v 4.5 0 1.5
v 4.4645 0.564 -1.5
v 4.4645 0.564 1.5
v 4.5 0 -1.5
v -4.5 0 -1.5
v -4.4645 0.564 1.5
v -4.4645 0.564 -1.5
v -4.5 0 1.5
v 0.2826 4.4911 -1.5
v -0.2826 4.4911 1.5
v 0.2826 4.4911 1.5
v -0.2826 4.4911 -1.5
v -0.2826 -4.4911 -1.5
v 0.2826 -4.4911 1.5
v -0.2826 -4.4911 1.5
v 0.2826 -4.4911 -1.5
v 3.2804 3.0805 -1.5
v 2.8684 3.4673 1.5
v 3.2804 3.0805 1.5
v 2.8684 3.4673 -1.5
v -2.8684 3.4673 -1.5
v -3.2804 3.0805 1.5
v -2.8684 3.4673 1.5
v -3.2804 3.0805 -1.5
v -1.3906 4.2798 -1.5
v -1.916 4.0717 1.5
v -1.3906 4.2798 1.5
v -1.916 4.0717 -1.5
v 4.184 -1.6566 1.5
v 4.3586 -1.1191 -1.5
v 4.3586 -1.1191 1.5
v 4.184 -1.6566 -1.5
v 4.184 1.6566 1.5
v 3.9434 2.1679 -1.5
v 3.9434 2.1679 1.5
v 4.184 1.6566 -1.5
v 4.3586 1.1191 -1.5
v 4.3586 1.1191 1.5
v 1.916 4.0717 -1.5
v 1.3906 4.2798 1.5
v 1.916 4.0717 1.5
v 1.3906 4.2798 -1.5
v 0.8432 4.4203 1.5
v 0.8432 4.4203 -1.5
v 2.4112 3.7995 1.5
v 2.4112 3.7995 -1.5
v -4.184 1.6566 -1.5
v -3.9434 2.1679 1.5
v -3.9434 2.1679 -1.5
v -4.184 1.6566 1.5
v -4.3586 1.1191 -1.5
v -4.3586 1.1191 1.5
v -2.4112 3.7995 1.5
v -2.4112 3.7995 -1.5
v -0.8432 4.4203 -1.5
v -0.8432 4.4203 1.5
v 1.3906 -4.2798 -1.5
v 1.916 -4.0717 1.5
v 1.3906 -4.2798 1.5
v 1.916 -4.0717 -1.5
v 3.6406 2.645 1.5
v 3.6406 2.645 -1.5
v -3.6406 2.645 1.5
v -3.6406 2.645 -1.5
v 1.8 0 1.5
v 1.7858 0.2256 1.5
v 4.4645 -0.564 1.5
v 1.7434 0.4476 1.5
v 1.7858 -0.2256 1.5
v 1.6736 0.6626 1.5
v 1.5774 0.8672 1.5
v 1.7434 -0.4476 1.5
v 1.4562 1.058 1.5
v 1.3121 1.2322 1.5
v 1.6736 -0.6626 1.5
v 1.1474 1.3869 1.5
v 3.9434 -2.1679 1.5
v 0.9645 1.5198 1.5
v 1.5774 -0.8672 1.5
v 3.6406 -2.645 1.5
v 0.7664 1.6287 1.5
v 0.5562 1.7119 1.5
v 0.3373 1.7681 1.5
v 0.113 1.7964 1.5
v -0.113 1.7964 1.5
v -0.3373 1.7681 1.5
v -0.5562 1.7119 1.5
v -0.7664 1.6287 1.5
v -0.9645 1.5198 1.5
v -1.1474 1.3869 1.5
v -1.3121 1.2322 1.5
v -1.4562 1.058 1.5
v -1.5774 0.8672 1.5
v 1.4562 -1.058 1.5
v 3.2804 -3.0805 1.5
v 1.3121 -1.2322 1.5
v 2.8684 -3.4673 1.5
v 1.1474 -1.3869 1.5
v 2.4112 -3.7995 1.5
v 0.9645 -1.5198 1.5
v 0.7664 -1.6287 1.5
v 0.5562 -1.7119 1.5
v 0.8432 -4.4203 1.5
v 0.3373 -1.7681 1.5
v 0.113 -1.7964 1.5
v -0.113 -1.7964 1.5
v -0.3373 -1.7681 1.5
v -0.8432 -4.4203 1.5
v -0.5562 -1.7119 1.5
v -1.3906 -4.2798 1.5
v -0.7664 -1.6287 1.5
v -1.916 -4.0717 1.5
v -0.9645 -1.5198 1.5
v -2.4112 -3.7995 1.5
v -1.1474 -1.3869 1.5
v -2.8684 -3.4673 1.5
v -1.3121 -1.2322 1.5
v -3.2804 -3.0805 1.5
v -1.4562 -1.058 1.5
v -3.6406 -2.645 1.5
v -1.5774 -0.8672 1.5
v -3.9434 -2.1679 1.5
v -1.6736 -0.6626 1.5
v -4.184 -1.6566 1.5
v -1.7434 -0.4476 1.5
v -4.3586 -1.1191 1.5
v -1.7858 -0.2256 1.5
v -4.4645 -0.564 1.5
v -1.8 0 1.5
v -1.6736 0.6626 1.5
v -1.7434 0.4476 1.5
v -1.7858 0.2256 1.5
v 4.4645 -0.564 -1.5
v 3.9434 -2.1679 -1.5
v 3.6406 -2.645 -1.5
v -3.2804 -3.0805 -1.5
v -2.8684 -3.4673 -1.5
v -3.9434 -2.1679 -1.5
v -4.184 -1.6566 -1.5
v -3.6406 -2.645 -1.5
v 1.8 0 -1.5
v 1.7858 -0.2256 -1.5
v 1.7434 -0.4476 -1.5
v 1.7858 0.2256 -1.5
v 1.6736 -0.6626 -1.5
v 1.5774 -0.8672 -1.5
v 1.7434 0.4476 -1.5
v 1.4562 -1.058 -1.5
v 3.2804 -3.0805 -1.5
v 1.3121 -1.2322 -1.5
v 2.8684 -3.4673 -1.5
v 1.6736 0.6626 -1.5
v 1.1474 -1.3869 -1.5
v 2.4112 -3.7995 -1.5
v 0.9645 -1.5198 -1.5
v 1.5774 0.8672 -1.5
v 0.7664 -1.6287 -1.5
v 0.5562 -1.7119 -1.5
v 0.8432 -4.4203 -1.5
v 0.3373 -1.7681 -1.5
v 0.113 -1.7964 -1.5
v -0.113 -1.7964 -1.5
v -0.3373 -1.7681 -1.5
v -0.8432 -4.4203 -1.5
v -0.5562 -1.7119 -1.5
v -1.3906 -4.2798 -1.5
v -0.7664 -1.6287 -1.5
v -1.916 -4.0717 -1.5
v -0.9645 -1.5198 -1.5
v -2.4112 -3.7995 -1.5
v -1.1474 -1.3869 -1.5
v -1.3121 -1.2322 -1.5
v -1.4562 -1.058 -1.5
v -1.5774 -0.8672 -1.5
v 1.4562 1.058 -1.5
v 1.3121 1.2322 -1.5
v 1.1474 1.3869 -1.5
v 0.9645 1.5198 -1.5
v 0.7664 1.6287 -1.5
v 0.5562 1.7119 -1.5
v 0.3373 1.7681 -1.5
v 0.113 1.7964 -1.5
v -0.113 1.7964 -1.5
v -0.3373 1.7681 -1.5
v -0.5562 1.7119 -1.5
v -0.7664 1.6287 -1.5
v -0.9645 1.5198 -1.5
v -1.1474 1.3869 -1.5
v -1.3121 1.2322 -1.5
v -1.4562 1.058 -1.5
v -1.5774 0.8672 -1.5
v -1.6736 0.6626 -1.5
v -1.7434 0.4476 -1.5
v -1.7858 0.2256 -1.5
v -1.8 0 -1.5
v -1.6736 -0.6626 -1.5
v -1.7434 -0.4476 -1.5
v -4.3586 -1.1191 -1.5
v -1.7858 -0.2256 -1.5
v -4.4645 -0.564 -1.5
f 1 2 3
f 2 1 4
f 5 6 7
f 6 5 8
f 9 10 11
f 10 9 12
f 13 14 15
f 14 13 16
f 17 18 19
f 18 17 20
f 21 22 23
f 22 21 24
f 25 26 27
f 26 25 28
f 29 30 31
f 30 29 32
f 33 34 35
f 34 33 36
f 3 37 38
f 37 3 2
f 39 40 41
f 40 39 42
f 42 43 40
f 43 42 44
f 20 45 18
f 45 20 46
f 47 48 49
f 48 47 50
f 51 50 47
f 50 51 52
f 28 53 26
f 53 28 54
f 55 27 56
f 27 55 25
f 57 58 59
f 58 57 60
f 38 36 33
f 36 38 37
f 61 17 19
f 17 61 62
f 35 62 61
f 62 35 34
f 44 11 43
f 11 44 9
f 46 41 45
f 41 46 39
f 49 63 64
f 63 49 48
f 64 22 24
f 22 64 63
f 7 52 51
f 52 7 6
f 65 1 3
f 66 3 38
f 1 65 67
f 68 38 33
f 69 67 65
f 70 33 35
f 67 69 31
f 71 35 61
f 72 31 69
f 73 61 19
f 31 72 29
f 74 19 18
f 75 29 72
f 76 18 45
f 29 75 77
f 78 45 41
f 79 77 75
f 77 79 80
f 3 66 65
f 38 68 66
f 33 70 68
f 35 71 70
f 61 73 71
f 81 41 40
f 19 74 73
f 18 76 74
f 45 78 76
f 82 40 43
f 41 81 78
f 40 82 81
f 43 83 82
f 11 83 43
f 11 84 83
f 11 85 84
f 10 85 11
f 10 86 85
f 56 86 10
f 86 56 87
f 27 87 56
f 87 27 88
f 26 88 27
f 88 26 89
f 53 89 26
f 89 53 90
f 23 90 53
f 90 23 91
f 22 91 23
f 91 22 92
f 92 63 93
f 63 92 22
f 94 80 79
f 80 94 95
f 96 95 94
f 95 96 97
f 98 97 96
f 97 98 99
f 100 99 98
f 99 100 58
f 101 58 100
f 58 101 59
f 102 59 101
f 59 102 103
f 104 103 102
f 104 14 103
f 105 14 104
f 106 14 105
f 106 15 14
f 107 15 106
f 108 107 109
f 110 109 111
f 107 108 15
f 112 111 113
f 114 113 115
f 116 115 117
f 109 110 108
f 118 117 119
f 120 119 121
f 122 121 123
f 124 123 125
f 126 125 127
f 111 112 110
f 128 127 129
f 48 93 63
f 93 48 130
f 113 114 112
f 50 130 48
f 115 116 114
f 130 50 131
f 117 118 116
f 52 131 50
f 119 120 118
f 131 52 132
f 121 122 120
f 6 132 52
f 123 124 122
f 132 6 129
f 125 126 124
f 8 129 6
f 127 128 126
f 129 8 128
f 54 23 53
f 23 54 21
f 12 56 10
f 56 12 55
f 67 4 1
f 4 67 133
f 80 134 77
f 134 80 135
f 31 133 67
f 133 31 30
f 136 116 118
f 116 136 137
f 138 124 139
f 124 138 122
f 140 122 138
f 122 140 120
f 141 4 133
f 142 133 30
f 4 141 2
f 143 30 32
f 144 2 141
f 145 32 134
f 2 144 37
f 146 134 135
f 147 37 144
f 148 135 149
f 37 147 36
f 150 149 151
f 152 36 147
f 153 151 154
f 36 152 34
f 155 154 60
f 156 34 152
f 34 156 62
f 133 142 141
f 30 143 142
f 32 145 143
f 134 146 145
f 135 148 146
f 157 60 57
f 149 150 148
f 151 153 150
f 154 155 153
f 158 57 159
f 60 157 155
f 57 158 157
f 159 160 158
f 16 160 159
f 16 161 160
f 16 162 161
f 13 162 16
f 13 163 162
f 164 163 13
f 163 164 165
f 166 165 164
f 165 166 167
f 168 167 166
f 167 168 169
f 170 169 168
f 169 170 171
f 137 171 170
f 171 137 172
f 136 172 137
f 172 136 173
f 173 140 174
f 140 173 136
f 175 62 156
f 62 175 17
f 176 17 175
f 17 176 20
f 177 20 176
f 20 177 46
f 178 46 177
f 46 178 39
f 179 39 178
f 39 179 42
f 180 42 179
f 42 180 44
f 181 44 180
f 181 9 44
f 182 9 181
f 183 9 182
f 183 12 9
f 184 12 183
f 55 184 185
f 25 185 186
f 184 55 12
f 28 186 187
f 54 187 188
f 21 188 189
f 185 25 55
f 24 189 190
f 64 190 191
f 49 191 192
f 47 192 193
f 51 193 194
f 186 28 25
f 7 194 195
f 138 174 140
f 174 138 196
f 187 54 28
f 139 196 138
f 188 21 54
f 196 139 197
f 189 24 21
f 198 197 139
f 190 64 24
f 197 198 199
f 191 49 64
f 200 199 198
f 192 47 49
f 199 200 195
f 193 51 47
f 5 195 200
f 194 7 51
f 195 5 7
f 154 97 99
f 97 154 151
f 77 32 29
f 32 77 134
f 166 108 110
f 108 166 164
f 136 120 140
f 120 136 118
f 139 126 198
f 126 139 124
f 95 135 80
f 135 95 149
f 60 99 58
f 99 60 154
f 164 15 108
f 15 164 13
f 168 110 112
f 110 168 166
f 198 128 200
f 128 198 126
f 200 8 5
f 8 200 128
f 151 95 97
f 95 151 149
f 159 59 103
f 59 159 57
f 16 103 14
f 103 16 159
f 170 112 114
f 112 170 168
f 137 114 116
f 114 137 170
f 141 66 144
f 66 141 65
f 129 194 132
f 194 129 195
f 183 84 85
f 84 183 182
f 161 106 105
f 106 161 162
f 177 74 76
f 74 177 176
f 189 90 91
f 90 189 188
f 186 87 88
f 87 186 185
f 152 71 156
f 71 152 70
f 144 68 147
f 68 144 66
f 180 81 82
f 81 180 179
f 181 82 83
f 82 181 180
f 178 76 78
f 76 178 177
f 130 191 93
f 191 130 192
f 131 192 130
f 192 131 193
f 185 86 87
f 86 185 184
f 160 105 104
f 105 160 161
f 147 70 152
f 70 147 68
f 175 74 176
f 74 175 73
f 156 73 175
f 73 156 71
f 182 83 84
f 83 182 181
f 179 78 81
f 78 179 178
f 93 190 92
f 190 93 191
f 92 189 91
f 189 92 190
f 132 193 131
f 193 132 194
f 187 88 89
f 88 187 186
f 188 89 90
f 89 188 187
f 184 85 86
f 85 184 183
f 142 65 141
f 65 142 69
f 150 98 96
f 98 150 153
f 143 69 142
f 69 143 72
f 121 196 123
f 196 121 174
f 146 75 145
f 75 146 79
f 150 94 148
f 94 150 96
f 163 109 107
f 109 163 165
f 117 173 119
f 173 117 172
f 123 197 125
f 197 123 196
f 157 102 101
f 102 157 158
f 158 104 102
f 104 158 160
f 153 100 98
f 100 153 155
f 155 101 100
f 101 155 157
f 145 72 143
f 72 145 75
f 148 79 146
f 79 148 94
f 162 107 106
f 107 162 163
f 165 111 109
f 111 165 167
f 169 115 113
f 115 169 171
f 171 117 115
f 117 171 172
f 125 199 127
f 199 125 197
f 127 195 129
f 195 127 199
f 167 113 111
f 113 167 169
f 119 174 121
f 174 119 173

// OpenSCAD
$fn = 50;


difference() {
	union() {
		translate(v = [0, 0, -1.5000000000]) {
			cylinder(h = 3, r = 4.5000000000);
		}
	}
	union() {
		translate(v = [0, 0, -100.0000000000]) {
			cylinder(h = 200, r = 1.8000000000);
		}
	}
}
